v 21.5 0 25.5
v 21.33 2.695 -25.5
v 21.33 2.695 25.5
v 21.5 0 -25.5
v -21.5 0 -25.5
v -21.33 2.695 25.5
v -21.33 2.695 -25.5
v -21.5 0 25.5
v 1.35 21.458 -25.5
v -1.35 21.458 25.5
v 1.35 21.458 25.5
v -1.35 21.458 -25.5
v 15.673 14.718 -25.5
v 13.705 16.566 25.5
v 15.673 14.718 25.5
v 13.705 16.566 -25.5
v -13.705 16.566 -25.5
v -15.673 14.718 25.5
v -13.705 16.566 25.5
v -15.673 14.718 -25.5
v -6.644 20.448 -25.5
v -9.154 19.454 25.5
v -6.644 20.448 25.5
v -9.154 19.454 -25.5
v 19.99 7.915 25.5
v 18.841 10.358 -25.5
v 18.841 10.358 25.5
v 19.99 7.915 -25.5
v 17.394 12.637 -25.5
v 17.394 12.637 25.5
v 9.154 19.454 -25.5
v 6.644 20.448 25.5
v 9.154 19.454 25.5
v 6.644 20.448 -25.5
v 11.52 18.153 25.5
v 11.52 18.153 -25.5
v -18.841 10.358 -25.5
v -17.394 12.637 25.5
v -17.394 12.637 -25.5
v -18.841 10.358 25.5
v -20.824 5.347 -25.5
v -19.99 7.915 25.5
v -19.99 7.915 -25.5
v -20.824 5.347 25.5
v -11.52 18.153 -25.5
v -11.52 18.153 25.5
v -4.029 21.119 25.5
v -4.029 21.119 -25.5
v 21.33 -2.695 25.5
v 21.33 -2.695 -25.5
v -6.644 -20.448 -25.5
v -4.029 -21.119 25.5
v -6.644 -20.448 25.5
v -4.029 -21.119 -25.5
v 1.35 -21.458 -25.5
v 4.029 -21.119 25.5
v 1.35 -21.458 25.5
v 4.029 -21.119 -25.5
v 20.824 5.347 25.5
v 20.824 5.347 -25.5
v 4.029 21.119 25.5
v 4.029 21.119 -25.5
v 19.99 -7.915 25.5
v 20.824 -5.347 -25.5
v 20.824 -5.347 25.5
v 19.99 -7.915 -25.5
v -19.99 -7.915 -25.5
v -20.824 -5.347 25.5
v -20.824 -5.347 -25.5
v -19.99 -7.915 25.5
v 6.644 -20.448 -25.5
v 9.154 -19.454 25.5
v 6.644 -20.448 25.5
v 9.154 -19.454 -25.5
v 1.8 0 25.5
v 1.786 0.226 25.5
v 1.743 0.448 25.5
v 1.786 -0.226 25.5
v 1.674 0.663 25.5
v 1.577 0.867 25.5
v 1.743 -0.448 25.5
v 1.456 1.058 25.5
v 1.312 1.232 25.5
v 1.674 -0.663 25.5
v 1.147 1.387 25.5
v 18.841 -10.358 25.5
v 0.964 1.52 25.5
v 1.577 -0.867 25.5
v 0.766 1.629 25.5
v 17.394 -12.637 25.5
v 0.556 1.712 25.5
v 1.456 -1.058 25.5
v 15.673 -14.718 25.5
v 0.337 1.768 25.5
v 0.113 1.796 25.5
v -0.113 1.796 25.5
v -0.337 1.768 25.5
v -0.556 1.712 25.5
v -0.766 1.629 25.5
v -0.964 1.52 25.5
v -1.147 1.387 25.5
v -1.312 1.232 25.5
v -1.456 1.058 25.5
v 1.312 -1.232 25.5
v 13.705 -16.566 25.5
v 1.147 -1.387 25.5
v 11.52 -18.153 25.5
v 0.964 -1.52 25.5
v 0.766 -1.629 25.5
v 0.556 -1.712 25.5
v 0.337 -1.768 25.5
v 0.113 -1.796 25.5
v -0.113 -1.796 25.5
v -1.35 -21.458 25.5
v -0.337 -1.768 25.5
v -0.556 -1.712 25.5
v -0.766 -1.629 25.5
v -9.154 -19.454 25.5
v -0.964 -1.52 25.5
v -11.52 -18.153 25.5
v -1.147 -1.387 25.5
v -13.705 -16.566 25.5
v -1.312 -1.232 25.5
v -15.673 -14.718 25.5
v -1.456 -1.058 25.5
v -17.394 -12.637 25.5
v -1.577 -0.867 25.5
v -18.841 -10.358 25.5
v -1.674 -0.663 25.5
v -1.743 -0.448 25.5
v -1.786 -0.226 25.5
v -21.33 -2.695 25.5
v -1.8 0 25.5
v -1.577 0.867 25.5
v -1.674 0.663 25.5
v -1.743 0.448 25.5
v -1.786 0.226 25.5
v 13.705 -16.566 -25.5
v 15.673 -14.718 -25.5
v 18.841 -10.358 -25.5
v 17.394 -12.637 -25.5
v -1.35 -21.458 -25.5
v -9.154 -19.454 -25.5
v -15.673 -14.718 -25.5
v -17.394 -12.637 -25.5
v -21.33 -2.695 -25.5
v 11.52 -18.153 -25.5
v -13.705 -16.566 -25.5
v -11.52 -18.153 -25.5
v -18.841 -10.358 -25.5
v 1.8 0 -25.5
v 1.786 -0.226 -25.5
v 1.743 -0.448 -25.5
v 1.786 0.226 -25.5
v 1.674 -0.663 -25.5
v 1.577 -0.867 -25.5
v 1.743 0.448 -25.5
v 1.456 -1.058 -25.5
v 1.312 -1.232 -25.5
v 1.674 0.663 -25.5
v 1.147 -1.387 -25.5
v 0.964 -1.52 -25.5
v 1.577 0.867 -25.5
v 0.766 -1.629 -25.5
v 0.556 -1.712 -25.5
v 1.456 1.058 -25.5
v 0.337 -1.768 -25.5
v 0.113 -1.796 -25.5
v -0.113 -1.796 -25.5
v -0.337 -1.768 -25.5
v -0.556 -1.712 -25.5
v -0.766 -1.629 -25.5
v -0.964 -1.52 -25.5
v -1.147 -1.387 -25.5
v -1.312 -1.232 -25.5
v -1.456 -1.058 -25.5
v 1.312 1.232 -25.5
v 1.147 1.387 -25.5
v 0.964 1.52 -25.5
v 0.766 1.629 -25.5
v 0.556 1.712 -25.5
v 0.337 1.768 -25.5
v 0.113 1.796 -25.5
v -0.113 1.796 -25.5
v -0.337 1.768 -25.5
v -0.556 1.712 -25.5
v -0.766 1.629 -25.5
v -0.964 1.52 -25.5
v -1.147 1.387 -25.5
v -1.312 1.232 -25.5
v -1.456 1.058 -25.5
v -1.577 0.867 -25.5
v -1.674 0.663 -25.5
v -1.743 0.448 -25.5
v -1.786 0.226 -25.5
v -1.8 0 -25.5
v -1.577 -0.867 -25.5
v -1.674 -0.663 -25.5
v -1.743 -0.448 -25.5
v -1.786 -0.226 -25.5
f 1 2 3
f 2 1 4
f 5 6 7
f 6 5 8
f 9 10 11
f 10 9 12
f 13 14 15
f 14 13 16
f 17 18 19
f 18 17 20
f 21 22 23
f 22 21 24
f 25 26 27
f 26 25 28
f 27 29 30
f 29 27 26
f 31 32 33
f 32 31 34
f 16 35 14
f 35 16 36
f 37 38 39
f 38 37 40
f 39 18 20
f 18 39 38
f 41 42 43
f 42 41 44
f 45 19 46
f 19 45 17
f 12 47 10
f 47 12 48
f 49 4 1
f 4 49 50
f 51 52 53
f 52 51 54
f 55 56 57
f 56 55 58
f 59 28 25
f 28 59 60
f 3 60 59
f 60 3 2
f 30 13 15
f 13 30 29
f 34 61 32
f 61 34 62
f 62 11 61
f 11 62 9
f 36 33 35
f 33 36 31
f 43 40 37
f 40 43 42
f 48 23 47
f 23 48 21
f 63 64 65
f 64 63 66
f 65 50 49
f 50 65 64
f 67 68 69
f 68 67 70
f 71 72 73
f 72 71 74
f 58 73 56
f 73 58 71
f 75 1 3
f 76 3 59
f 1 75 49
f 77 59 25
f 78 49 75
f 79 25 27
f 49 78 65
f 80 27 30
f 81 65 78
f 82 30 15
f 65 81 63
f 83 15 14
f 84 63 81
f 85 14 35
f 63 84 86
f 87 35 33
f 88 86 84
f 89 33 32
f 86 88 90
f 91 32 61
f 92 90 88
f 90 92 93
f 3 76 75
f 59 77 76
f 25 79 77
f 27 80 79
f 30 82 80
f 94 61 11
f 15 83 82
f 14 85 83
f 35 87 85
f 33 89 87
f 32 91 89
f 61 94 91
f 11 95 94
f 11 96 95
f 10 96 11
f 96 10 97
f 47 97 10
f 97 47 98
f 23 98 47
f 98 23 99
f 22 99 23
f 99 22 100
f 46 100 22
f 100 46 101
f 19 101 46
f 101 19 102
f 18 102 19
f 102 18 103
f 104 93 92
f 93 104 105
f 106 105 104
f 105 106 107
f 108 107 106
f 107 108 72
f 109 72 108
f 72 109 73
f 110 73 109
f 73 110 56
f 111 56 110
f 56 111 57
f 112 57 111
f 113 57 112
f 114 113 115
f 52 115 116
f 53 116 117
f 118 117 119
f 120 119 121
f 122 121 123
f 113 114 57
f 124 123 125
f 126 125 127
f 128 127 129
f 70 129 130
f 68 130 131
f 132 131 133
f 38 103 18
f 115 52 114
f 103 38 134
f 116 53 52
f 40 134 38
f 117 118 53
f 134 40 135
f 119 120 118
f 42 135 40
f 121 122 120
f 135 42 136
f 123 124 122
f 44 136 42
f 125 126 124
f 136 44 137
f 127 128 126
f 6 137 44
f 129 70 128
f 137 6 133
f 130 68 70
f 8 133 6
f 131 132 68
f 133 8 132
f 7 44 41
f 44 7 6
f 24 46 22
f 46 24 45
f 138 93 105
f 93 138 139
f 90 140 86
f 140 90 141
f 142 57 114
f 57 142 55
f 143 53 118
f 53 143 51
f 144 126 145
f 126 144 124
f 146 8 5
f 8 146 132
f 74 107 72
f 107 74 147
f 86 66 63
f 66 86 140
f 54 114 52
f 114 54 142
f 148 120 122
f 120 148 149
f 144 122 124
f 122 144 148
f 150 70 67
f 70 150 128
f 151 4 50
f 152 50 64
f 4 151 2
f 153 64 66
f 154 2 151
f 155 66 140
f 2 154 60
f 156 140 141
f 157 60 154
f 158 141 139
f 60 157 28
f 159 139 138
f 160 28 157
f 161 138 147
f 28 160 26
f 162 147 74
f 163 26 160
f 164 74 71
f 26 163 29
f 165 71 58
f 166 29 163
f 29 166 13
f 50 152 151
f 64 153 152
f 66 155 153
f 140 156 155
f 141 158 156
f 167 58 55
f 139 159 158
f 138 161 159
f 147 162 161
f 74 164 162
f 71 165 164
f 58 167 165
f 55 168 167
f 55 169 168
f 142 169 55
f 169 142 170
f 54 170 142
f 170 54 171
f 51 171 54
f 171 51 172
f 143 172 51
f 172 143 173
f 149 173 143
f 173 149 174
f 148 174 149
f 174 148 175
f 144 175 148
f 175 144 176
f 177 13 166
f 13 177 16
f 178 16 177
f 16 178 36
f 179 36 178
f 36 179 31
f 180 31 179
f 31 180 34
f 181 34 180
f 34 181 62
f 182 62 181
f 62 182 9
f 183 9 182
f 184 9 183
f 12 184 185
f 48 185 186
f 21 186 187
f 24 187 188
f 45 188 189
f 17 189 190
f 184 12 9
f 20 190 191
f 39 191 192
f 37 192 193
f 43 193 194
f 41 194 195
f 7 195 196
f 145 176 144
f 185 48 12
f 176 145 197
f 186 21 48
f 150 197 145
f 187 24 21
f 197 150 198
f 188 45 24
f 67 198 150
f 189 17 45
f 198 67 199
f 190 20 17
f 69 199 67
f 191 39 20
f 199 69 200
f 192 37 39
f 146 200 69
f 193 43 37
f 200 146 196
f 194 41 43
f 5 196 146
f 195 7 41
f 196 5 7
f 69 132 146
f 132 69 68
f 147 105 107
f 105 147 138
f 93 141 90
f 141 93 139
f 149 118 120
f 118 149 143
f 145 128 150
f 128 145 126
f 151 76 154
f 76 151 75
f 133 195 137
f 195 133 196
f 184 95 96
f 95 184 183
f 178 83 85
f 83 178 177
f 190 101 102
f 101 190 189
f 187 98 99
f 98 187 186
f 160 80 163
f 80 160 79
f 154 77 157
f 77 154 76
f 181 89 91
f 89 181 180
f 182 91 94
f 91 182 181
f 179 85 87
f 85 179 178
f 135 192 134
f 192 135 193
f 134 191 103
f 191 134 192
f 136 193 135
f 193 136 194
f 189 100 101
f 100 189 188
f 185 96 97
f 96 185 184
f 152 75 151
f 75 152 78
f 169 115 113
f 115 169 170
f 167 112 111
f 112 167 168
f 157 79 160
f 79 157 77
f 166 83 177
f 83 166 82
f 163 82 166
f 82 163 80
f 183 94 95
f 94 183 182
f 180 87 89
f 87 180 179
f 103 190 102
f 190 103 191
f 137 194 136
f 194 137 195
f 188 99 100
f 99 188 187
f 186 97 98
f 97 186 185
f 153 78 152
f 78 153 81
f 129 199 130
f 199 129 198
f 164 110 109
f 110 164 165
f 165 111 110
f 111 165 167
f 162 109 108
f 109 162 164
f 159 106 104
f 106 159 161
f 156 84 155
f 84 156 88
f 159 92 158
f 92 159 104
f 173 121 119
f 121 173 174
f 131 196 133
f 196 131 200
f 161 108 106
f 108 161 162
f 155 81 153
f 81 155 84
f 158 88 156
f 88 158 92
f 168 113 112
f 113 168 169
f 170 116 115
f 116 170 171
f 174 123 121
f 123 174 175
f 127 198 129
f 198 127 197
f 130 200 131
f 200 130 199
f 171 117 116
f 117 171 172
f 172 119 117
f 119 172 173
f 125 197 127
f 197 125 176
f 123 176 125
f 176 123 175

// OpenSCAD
$fn = 50;


difference() {
	union() {
		translate(v = [0, 0, -25.5000000000]) {
			cylinder(h = 51, r = 21.5000000000);
		}
	}
	union() {
		translate(v = [0, 0, -100.0000000000]) {
			cylinder(h = 200, r = 1.8000000000);
		}
	}
}
